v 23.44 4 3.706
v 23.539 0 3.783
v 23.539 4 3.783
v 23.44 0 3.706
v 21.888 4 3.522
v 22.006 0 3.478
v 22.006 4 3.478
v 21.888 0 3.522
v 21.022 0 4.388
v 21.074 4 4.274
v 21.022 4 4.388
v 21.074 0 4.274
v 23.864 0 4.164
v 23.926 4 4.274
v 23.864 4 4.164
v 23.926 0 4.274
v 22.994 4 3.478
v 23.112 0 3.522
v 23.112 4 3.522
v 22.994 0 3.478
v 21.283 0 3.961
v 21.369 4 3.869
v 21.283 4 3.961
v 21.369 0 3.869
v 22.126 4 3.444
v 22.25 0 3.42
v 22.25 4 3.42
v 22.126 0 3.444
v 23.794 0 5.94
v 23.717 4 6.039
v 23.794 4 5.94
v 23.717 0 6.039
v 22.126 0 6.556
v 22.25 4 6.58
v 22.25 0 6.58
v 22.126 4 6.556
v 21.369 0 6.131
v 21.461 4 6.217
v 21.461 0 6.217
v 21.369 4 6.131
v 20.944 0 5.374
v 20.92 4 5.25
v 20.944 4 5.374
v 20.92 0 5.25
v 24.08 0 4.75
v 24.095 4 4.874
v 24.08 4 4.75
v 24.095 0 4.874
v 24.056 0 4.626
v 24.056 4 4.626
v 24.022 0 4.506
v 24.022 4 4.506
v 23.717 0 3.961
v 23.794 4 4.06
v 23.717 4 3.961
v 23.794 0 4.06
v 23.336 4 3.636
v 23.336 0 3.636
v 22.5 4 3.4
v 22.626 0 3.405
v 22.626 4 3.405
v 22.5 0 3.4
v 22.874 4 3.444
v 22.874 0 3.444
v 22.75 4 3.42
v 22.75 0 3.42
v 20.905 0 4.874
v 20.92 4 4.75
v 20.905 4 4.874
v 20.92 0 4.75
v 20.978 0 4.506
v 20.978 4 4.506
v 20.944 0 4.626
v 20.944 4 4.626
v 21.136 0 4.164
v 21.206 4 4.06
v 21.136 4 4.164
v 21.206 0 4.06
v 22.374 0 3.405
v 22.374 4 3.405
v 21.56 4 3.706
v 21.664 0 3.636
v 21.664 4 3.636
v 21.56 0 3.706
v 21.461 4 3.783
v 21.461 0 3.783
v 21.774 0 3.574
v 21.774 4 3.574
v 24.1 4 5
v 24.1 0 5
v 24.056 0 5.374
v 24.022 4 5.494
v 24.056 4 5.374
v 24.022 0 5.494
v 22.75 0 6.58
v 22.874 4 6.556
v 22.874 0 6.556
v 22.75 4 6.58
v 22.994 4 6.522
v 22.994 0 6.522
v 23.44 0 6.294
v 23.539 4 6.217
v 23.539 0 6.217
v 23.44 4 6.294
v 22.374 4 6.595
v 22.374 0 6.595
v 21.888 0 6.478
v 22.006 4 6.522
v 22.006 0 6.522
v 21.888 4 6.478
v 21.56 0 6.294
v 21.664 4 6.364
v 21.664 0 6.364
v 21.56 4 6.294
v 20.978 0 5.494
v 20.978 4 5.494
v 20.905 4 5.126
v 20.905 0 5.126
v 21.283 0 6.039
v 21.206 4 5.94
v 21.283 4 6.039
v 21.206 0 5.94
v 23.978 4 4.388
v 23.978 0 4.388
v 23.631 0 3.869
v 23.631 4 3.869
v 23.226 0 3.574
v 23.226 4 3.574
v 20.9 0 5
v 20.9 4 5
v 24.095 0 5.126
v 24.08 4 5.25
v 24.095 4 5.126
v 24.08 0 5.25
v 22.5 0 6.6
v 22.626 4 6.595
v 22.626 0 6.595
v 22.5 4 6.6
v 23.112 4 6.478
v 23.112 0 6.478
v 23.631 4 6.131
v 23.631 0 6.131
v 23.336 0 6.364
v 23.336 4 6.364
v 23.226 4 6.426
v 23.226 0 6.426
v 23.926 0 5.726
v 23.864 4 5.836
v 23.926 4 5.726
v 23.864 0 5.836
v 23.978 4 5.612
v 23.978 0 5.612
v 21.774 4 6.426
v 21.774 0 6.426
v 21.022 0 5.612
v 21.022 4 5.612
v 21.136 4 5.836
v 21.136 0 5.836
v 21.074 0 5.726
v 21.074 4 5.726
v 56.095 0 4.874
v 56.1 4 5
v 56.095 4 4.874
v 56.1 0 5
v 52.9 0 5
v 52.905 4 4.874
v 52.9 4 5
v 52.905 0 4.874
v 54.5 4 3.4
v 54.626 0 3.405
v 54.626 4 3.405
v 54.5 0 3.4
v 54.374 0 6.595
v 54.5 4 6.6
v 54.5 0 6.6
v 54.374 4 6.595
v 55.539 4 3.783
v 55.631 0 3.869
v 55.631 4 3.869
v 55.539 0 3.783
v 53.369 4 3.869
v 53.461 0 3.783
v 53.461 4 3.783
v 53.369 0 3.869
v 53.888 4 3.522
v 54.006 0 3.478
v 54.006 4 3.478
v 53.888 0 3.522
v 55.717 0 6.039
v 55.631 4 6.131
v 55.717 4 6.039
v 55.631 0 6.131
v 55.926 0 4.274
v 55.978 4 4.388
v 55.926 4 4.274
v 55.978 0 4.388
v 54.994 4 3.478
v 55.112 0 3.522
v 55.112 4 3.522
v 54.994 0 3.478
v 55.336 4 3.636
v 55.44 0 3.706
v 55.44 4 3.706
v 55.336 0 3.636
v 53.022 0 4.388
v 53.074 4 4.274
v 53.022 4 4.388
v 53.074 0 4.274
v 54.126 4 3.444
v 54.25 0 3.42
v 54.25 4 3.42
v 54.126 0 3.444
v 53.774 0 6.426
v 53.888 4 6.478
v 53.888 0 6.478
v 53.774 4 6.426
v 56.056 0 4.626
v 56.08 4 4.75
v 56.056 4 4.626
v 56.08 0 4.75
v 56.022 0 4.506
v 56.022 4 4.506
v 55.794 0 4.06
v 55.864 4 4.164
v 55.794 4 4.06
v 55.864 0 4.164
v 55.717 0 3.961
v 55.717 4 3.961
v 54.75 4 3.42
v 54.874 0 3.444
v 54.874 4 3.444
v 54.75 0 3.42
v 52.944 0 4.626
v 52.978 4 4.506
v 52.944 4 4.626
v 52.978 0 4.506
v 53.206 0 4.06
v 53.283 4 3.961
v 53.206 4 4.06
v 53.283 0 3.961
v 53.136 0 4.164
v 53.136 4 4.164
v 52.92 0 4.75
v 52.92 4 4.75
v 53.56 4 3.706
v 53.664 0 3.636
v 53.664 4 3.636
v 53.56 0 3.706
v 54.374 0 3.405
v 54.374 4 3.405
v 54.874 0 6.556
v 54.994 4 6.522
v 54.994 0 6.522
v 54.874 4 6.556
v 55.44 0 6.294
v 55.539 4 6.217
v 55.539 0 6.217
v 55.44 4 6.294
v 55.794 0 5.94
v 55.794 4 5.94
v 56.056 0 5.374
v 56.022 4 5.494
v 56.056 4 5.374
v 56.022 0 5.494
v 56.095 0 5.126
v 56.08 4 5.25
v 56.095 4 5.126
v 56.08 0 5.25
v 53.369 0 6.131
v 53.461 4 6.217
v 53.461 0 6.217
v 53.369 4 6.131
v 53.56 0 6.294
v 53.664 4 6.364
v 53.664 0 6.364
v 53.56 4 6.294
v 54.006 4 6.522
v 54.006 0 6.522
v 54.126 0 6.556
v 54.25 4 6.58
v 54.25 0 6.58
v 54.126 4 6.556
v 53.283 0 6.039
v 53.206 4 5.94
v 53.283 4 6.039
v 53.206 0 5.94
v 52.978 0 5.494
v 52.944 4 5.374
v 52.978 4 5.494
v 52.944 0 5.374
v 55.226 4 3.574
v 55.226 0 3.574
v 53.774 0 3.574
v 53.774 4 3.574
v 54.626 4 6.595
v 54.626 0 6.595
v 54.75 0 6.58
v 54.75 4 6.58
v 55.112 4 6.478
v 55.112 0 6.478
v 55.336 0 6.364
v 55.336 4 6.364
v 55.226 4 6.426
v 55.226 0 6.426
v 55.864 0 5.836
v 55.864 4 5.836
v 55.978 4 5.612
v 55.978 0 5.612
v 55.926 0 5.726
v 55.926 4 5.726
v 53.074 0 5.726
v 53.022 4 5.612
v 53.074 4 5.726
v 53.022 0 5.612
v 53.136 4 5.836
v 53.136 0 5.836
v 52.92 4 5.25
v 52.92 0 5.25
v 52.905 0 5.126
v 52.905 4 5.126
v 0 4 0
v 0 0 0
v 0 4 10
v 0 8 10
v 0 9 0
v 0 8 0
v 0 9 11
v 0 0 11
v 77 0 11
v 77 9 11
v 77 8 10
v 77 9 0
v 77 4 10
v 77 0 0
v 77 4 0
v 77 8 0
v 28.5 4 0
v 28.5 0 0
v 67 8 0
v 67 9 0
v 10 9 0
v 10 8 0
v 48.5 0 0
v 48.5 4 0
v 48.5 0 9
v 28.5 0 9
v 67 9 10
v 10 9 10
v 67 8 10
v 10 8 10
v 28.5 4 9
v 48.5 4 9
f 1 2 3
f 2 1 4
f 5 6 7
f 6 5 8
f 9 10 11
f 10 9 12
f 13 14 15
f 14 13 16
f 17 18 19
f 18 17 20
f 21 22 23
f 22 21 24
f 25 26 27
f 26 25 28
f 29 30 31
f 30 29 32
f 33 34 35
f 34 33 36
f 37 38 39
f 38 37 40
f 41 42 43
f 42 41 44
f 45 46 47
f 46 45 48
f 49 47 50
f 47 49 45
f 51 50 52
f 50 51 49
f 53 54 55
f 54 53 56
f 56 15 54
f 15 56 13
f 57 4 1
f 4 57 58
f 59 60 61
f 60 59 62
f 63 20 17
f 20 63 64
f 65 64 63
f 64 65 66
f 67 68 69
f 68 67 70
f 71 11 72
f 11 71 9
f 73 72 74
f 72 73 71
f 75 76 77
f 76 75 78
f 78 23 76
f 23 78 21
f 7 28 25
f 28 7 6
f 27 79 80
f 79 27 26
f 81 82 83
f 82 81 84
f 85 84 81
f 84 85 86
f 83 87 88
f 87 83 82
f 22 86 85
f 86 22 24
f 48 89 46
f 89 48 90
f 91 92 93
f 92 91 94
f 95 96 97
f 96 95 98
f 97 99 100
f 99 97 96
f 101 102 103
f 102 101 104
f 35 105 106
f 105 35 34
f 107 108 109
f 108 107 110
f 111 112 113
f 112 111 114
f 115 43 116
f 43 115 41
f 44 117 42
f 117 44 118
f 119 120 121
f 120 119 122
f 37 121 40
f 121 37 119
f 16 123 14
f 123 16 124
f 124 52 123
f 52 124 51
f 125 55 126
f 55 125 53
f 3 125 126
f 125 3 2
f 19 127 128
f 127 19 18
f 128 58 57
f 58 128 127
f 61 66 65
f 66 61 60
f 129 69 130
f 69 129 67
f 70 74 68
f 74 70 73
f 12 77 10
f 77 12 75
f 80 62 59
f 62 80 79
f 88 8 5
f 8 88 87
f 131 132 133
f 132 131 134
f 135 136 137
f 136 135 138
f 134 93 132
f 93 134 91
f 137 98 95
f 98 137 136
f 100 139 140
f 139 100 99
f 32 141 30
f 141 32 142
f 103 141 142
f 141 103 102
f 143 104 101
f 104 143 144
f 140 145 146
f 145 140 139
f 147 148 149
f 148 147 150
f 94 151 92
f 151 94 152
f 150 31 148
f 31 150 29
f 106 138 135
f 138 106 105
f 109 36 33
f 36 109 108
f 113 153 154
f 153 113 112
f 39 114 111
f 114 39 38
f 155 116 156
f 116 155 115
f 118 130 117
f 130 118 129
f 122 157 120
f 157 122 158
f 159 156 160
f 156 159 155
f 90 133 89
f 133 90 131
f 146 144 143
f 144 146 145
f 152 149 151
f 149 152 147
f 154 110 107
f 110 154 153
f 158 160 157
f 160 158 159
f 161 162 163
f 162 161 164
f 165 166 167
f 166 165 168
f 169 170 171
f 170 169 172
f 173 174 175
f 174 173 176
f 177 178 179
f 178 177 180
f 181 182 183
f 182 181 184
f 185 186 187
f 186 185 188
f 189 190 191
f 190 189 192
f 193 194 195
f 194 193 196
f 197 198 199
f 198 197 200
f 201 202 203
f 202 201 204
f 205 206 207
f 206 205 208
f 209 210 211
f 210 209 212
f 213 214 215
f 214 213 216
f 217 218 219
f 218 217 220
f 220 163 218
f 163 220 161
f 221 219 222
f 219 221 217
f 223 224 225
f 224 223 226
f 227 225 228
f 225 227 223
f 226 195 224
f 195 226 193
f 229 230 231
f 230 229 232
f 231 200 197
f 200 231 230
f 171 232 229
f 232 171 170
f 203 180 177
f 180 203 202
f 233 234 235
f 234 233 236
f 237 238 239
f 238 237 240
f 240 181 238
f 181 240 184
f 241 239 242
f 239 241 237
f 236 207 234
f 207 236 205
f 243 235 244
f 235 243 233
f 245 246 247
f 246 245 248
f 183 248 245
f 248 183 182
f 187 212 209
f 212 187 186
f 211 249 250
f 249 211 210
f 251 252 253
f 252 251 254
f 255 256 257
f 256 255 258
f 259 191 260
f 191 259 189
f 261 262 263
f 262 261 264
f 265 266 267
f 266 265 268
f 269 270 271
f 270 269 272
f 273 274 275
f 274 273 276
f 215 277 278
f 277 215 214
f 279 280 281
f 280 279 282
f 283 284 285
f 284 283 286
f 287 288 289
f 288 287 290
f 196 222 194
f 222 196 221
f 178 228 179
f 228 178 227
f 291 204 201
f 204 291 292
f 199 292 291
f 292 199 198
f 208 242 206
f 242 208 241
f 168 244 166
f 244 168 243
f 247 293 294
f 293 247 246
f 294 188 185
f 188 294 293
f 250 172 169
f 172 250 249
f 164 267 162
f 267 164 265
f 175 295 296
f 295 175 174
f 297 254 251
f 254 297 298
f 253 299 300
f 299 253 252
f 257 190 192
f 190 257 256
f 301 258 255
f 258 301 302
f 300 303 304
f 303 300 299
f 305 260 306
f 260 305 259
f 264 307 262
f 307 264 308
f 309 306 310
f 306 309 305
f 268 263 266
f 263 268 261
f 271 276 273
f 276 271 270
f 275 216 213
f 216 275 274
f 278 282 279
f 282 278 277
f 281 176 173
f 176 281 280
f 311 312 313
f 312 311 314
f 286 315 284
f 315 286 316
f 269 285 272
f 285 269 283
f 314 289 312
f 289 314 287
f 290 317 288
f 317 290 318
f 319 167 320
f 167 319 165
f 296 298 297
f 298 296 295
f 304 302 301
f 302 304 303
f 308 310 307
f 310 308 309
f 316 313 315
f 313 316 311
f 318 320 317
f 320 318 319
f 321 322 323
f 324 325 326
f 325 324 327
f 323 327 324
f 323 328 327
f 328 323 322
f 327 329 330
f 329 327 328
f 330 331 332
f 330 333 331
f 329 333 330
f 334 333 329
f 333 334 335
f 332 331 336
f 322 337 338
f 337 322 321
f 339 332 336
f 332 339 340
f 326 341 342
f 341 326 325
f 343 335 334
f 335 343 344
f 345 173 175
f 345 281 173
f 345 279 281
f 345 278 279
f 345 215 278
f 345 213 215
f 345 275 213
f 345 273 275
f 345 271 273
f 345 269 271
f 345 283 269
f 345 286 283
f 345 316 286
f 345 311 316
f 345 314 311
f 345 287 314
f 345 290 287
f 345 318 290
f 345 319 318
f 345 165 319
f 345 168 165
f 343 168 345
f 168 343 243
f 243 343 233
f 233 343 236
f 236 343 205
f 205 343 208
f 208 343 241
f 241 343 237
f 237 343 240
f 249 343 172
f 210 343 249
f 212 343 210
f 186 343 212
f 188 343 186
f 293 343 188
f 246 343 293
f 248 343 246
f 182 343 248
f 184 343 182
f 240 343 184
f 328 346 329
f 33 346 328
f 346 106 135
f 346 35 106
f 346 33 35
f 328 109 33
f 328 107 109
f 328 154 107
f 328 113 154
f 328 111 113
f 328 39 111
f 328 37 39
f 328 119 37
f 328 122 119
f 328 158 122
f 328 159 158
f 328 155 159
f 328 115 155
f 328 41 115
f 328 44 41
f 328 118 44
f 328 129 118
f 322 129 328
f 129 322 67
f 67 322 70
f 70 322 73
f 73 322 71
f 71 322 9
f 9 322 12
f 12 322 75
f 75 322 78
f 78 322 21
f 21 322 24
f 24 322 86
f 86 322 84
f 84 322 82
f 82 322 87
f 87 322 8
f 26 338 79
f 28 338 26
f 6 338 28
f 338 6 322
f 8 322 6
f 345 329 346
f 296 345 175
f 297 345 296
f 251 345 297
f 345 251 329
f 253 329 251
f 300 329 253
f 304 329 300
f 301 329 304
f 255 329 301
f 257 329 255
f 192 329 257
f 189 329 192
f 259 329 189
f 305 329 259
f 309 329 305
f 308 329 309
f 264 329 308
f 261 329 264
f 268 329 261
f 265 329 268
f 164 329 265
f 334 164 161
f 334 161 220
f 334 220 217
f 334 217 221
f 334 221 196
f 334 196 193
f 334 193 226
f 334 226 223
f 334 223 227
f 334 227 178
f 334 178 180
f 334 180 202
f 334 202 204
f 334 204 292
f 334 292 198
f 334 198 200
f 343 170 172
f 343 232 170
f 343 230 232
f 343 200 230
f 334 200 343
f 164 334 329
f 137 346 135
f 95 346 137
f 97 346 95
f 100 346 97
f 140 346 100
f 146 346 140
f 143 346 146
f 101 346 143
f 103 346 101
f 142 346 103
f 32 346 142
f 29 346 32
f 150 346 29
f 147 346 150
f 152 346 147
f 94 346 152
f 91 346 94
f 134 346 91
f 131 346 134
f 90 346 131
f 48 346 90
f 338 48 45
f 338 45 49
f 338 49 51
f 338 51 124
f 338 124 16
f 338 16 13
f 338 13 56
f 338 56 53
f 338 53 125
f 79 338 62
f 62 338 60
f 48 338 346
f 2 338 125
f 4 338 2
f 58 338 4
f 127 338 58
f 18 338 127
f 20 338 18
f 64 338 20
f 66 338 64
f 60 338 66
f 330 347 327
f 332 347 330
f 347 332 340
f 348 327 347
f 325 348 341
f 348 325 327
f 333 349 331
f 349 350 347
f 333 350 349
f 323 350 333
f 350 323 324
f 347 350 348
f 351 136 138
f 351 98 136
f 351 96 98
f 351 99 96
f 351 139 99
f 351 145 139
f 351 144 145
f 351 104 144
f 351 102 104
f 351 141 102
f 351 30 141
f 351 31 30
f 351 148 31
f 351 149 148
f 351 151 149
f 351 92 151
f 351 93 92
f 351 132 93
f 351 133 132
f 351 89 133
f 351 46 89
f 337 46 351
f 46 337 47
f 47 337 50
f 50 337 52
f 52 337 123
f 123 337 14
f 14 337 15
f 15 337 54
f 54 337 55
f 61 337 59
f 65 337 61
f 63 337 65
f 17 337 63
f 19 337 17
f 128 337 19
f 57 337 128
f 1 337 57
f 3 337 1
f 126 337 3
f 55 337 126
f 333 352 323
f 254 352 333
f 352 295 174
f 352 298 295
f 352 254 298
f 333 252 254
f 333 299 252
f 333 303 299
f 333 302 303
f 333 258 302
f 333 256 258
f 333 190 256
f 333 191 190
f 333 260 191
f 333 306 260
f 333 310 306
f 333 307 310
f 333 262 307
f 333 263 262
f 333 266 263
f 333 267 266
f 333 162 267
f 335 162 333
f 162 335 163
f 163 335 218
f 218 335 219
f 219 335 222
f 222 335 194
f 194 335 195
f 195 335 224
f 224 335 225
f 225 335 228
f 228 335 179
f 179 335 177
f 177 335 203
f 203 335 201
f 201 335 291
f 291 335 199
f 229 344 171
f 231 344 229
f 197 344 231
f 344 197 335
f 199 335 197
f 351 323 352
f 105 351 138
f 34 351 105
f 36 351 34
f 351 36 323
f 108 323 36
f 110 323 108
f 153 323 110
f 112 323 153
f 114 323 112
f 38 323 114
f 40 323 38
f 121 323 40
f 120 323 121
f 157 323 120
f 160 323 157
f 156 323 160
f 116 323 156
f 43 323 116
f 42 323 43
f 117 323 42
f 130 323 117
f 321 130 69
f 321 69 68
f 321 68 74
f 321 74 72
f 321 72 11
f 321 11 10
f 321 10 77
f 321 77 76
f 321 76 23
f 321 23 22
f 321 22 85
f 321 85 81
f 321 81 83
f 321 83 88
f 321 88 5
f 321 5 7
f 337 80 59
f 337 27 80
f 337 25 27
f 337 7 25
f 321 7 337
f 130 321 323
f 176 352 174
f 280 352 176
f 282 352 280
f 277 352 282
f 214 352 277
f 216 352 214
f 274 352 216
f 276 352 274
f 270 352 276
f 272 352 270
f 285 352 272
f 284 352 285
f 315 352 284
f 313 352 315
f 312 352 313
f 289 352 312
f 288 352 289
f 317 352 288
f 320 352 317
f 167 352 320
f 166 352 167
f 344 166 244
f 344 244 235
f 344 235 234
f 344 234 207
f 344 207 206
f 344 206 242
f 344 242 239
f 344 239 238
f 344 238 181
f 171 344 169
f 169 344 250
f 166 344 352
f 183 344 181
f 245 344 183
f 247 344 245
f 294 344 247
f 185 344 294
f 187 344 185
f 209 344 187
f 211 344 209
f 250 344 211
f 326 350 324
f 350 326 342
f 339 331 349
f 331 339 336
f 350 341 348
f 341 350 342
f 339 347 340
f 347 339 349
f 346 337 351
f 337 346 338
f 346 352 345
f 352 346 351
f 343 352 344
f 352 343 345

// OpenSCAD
$fn=80;
extra=0.005;

holderX = 10;
zDriveXLen = 57;
bcFrameThickness = 4;
wallThickness = 1;
height = 10;

fanX = 20;

fanScrewHoleDia = 3.2;
fanScrewDist = 32;

difference()
{
  cube([holderX*2+zDriveXLen,bcFrameThickness+wallThickness*5,height+wallThickness]);
  translate([-extra,wallThickness*4,0])
    cube([holderX*2+zDriveXLen+extra*2,bcFrameThickness,height]);
  translate([holderX,bcFrameThickness+wallThickness*4,0])
    cube([zDriveXLen,wallThickness*4,height]);

  translate([(holderX*2+zDriveXLen)/2-fanX/2,-extra,0])
    cube([fanX,wallThickness*4+extra*2,height-wallThickness]);

  translate([(holderX*2+zDriveXLen)/2-fanScrewDist/2,0,0])
  {
    translate([0,-extra,height/2])
    rotate([-90,0,0])
      cylinder(r=fanScrewHoleDia/2, h=wallThickness*4+extra*2);

    translate([fanScrewDist,-extra,height/2])
    rotate([-90,0,0])
      cylinder(r=fanScrewHoleDia/2, h=wallThickness*4+extra*2);
  }
}
